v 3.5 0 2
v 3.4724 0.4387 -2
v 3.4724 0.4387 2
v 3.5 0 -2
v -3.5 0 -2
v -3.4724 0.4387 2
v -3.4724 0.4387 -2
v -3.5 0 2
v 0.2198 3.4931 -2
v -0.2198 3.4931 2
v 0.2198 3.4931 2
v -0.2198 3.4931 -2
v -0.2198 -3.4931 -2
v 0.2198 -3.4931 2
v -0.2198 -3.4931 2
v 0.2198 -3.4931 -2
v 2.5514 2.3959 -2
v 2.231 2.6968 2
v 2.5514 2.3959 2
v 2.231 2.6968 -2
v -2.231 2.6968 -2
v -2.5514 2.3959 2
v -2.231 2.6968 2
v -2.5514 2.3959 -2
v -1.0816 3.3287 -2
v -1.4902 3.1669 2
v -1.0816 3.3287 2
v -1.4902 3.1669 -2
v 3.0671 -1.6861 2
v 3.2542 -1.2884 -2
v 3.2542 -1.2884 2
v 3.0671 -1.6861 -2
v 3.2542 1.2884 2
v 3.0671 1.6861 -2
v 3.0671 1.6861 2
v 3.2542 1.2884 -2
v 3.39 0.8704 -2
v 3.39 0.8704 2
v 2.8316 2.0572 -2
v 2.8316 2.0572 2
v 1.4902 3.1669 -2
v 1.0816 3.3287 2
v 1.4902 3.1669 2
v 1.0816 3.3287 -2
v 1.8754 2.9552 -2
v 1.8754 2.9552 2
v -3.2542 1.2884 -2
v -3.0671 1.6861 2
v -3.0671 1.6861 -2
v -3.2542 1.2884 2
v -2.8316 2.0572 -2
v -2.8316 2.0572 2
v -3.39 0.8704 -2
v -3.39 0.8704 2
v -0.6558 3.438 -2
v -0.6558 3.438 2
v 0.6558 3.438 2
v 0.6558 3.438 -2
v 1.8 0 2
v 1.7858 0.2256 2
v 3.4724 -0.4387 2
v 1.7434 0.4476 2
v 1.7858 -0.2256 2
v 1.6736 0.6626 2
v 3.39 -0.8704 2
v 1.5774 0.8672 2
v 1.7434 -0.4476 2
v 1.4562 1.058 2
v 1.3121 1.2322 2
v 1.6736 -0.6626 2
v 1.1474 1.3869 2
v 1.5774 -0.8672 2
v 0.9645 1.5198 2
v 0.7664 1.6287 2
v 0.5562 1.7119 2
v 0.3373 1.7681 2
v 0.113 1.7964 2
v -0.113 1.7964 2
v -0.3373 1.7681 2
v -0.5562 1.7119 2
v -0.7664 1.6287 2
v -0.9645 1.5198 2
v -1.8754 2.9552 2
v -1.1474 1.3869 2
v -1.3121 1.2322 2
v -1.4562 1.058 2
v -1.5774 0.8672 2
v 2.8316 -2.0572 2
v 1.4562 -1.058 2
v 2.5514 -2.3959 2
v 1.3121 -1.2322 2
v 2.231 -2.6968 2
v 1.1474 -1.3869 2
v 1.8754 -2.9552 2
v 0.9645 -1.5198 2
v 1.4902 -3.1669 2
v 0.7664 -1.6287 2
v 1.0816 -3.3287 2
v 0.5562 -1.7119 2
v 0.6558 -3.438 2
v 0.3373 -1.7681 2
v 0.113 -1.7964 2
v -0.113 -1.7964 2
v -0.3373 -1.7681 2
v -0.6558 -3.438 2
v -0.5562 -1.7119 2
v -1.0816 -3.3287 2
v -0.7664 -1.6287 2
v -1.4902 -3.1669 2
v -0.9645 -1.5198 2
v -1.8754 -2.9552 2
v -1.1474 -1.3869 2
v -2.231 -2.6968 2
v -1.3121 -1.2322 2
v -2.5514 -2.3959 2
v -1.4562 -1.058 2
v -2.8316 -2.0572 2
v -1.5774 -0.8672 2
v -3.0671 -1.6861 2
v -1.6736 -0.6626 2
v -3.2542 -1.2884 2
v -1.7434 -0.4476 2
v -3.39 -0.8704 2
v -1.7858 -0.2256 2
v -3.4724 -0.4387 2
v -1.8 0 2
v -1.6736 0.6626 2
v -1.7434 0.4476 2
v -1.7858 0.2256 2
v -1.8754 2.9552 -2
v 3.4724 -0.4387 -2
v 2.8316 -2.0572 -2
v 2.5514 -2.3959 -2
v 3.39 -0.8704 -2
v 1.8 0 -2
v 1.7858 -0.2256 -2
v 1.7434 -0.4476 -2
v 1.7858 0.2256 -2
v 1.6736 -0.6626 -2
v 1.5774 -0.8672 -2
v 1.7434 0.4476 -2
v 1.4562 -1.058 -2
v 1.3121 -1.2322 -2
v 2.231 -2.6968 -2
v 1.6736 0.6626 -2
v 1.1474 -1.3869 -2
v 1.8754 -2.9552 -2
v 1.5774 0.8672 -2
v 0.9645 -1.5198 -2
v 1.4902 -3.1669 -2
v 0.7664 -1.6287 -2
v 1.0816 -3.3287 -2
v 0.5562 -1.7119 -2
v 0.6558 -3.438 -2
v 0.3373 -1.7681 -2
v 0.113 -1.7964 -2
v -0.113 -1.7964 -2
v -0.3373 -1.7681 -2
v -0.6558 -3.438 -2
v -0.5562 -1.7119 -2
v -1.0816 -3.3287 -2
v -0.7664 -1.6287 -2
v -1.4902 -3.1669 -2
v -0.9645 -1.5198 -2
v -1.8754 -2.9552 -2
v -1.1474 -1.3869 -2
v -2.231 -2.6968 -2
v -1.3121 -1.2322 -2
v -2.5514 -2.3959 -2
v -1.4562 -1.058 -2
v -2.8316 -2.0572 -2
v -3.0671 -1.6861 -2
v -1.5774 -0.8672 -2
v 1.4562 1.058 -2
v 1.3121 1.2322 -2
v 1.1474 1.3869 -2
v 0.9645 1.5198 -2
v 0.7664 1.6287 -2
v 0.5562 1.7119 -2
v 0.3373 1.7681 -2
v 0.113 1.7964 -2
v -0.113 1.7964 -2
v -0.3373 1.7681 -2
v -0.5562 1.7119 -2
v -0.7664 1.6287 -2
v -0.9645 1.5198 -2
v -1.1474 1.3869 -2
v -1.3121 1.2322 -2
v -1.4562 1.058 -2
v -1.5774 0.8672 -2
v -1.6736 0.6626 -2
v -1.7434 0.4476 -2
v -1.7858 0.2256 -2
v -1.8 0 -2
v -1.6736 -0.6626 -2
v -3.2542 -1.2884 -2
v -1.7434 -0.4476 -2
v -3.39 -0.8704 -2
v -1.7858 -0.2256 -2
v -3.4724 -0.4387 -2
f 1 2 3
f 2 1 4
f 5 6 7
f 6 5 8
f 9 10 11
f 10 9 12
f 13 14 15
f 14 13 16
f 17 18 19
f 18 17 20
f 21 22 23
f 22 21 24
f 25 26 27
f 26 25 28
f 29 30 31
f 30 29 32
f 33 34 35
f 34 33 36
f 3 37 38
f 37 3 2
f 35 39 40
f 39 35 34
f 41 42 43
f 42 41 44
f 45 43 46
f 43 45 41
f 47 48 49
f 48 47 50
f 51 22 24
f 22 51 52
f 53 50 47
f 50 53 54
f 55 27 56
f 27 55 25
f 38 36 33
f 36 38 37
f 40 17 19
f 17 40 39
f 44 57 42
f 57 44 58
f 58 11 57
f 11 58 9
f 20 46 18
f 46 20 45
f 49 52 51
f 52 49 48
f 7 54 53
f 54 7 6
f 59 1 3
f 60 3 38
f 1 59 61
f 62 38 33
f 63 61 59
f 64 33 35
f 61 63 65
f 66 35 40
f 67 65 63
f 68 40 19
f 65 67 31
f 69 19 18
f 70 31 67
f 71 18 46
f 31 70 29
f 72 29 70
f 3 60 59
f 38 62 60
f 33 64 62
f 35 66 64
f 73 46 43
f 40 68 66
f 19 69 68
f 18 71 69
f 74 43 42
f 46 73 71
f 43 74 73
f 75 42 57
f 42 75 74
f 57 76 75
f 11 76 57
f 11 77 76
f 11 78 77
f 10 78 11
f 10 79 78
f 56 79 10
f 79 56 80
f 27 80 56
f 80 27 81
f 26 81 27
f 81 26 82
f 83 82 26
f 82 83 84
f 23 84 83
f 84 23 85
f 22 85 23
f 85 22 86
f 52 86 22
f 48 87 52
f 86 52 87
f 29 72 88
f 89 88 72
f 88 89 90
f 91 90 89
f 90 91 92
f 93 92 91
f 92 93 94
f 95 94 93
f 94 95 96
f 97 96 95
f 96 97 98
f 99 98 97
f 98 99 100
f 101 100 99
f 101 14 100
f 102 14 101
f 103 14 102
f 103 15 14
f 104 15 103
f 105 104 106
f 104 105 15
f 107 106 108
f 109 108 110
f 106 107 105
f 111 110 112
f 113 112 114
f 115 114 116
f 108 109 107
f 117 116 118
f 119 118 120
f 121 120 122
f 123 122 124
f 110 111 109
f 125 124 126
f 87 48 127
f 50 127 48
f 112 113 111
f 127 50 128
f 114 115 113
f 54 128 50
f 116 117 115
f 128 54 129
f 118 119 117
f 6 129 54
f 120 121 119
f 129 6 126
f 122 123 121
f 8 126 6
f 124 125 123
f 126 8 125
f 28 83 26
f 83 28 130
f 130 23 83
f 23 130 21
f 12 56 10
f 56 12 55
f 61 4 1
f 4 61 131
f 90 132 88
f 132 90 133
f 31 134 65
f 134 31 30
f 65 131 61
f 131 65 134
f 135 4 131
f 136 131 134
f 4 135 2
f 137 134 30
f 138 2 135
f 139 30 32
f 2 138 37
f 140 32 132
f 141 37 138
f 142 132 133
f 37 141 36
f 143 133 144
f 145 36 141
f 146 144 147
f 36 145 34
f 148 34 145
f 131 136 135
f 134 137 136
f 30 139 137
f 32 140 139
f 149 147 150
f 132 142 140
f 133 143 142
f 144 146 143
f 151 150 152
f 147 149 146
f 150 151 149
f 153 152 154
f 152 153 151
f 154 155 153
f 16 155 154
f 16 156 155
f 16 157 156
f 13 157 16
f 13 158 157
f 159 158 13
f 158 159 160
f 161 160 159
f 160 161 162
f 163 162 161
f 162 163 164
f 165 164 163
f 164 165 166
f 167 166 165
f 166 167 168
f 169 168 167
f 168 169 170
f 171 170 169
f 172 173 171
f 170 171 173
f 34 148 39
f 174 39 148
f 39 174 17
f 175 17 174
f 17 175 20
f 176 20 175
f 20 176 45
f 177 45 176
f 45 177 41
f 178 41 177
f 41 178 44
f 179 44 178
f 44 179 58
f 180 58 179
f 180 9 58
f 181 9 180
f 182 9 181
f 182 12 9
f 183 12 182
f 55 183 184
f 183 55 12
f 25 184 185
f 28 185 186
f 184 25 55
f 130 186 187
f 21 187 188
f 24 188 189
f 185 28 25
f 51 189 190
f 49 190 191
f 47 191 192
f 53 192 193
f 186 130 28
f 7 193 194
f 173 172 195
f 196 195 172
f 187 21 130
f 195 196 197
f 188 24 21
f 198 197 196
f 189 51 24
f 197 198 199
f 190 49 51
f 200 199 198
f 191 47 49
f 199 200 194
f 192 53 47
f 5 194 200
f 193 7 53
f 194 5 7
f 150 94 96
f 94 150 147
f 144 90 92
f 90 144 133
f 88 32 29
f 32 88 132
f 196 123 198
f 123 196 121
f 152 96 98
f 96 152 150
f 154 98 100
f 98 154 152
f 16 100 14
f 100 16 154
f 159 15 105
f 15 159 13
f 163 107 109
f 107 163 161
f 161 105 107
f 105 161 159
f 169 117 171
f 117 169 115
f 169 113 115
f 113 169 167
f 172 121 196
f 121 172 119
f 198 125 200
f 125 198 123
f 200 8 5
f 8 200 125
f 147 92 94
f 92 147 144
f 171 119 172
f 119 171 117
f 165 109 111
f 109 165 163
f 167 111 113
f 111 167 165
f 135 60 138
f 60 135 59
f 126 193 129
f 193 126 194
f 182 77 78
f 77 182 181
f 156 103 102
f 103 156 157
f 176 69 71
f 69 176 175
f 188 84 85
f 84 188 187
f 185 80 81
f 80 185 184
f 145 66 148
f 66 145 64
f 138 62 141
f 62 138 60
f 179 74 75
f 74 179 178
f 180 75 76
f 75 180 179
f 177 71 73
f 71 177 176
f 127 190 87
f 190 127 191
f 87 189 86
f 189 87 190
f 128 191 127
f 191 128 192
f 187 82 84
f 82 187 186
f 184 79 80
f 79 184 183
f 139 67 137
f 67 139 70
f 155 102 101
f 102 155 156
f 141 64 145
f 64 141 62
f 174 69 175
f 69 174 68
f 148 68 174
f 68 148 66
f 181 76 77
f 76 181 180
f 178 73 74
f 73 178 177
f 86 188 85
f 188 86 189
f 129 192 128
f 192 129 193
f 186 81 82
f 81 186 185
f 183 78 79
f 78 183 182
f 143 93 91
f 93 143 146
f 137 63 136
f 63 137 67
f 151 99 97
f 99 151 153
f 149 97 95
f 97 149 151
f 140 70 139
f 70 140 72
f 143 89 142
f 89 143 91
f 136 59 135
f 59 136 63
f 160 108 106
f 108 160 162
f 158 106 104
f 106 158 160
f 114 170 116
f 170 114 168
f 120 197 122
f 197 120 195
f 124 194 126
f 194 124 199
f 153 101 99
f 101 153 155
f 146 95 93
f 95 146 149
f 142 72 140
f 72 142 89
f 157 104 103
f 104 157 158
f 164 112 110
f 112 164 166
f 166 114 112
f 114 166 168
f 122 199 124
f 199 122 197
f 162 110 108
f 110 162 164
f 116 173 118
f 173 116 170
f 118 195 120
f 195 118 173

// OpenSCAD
$fn = 50;


difference() {
	union() {
		translate(v = [0, 0, -2.0000000000]) {
			cylinder(h = 4, r = 3.5000000000);
		}
	}
	union() {
		translate(v = [0, 0, -100.0000000000]) {
			cylinder(h = 200, r = 1.8000000000);
		}
	}
}
